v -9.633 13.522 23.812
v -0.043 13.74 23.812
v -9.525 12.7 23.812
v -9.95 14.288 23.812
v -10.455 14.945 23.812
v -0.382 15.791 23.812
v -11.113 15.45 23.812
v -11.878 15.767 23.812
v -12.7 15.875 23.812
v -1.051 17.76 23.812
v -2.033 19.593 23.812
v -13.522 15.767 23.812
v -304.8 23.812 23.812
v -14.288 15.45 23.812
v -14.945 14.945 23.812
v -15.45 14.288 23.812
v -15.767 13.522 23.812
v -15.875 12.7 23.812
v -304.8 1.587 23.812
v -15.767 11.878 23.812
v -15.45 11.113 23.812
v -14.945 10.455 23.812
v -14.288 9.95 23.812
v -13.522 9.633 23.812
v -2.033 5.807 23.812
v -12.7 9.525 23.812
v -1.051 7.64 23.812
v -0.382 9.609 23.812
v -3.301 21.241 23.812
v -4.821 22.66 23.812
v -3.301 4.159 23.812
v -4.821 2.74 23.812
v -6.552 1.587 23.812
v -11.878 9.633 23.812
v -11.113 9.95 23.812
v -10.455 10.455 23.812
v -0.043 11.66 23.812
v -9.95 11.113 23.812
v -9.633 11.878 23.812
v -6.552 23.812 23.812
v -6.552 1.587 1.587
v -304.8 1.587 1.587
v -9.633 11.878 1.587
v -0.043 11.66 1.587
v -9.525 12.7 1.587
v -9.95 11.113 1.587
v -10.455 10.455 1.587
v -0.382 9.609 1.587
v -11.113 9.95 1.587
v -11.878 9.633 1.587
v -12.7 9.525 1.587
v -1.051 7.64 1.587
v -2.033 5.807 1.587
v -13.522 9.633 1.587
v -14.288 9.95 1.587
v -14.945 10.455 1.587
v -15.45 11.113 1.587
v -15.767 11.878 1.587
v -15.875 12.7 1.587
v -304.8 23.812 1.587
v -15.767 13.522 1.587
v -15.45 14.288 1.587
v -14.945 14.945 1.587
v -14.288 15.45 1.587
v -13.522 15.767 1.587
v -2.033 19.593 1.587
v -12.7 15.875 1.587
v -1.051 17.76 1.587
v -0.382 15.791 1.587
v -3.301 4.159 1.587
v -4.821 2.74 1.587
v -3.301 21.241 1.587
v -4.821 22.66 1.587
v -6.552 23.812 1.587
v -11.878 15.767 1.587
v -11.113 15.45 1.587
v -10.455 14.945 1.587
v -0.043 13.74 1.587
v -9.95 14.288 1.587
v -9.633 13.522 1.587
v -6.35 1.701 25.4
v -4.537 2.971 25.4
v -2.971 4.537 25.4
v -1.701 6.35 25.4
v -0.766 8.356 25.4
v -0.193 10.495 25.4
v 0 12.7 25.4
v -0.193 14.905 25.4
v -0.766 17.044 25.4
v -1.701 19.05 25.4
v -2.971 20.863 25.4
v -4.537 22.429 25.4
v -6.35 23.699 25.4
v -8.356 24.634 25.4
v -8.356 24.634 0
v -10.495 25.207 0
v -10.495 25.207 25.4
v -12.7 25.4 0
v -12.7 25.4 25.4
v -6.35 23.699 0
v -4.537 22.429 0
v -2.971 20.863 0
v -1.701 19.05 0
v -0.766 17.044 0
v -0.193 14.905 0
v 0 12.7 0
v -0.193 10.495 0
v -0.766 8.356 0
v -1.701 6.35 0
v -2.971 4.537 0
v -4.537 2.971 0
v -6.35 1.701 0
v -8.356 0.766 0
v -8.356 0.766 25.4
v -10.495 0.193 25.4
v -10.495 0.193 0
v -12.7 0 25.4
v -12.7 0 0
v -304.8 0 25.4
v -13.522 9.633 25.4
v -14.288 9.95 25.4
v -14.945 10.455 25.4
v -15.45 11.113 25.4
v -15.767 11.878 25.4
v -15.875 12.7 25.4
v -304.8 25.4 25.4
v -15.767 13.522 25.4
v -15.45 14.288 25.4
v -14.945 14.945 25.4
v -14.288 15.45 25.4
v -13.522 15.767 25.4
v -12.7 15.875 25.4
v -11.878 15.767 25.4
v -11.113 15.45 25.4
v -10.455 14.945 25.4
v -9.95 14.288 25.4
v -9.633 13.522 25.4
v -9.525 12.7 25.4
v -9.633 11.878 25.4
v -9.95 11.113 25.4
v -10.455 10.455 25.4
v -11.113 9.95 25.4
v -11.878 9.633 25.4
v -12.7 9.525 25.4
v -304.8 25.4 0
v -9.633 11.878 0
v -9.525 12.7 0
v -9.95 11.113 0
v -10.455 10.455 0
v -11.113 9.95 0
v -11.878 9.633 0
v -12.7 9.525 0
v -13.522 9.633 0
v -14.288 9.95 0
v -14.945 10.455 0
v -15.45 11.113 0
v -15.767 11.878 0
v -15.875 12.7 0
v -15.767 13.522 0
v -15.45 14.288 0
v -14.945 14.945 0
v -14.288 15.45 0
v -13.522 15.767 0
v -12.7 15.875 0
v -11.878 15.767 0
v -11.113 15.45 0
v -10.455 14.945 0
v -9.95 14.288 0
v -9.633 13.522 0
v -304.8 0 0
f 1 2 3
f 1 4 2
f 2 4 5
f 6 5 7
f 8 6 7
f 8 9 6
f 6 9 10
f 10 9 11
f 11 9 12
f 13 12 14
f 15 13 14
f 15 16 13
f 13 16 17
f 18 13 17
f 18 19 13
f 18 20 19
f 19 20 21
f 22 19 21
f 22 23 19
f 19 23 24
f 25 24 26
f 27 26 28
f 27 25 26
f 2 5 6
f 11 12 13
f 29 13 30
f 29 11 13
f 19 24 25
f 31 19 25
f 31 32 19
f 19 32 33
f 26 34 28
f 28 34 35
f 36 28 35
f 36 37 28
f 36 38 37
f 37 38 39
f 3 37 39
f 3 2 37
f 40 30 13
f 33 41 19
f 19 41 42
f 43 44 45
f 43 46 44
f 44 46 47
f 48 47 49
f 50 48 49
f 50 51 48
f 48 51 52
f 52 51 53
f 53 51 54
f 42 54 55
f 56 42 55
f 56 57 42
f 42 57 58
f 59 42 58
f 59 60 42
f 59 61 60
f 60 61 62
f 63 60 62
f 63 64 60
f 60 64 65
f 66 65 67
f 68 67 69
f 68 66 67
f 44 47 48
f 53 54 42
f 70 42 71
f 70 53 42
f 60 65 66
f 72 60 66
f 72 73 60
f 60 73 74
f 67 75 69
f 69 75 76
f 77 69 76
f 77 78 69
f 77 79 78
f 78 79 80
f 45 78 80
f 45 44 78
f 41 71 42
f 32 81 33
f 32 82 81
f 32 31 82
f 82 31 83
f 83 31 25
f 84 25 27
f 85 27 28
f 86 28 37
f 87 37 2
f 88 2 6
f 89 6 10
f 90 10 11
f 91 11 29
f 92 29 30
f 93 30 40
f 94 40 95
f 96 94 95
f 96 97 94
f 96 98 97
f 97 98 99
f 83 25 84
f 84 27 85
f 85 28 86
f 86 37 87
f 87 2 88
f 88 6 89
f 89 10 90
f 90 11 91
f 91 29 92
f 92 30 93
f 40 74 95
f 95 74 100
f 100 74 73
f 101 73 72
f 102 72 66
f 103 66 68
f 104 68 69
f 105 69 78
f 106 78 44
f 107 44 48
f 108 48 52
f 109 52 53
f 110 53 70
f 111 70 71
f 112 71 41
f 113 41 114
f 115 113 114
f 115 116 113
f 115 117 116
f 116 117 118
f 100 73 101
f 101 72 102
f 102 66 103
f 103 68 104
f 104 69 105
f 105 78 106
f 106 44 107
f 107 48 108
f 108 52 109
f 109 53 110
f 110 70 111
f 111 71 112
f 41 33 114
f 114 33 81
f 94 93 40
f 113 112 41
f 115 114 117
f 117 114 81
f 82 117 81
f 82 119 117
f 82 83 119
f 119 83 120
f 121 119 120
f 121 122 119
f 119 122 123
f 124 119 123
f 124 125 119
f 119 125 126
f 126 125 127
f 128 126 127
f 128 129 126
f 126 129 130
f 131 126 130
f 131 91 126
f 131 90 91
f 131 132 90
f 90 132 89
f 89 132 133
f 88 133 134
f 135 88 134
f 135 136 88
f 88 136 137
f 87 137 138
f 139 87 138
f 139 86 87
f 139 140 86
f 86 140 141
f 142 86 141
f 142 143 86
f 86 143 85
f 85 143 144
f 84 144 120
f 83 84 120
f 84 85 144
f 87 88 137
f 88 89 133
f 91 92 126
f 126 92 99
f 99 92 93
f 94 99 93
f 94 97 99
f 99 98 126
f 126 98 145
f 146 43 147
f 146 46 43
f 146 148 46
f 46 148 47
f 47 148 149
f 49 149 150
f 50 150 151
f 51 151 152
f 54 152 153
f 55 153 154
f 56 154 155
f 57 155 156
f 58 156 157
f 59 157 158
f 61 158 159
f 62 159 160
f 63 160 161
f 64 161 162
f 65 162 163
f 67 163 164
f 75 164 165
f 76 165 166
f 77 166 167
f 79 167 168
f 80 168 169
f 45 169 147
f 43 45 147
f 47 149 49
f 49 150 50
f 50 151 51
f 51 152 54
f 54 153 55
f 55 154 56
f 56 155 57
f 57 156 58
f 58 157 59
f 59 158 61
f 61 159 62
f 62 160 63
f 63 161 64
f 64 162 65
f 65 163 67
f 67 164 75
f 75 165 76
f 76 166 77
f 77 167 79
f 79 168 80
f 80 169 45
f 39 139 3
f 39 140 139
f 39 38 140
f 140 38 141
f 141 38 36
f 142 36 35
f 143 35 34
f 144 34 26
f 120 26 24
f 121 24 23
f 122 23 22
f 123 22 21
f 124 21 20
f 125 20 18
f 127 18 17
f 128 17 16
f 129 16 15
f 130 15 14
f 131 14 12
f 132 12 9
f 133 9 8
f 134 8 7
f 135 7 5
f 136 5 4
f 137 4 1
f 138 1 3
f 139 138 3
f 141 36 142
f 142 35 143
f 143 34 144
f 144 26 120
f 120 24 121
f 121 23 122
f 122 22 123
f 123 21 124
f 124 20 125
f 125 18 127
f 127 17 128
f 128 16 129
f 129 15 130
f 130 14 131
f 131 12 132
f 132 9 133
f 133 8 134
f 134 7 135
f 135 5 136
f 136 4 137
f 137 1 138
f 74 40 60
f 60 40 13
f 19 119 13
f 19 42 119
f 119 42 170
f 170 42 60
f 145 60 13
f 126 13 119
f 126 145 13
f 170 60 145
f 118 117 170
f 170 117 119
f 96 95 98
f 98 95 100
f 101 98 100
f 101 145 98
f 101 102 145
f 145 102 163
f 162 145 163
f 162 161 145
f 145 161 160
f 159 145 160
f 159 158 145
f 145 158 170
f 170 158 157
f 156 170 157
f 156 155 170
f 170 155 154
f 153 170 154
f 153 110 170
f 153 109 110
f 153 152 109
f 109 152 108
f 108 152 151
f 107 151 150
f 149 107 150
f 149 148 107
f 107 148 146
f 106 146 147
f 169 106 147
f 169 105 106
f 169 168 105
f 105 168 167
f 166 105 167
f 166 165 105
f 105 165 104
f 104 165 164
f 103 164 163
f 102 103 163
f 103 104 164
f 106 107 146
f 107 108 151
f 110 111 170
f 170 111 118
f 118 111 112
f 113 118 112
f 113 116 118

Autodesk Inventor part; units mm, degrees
ref_plane "YZ Plane" through (0, 0, 0) normal (1, 0, 0) x (0, 1, 0)
ref_plane "XZ Plane" through (0, 0, 0) normal (0, 1, 0) x (-1, 0, 0)
ref_plane "XY Plane" through (0, 0, 0) normal (0, 0, 1) x (1, 0, 0)
sketch "Sketch1" plane through (0, 0, 0) normal (0, 0, 1) x (1, 0, 0)
  line L0 (0, 0) -> (-304.8, 0)
  line L1 (-304.8, 0) -> (-304.8, 25.4)
  line L2 (-304.8, 25.4) -> (0, 25.4)
  line L3 (0, 25.4) -> (0, 0)
  dimension "d0" = 25.4
  dimension "d1" = 304.8
extrude "Extrusion1" add sketch "Sketch1" along normal blind 25.4
shell "Shell1" thickness 1.5875 removed faces 2 at (0, 16.9333, 8.4667) at (-304.8, 8.4667, 8.4667)
sketch "Sketch2" plane through (0, 0, 25.4) normal (0, 0, 1) x (1, 0, 0)
  line L0 (0, 0) -> (-304.8, 0) projected
  line L1 (0, 25.4) -> (0, 0) projected
  circle A0 centre (-12.7, 12.7) radius 3.175
  dimension "d5" = 12.7
  dimension "d6" = 12.7
  dimension "d7" = 6.35
extrude "Extrusion2" cut sketch "Sketch2" against normal through all
fillet "Fillet1" radius 12.7 2 edges at (0, 25.4, 12.7) (0, 0, 12.7)
properties part number "Shovel_Arm" material "Aluminum-6061"
